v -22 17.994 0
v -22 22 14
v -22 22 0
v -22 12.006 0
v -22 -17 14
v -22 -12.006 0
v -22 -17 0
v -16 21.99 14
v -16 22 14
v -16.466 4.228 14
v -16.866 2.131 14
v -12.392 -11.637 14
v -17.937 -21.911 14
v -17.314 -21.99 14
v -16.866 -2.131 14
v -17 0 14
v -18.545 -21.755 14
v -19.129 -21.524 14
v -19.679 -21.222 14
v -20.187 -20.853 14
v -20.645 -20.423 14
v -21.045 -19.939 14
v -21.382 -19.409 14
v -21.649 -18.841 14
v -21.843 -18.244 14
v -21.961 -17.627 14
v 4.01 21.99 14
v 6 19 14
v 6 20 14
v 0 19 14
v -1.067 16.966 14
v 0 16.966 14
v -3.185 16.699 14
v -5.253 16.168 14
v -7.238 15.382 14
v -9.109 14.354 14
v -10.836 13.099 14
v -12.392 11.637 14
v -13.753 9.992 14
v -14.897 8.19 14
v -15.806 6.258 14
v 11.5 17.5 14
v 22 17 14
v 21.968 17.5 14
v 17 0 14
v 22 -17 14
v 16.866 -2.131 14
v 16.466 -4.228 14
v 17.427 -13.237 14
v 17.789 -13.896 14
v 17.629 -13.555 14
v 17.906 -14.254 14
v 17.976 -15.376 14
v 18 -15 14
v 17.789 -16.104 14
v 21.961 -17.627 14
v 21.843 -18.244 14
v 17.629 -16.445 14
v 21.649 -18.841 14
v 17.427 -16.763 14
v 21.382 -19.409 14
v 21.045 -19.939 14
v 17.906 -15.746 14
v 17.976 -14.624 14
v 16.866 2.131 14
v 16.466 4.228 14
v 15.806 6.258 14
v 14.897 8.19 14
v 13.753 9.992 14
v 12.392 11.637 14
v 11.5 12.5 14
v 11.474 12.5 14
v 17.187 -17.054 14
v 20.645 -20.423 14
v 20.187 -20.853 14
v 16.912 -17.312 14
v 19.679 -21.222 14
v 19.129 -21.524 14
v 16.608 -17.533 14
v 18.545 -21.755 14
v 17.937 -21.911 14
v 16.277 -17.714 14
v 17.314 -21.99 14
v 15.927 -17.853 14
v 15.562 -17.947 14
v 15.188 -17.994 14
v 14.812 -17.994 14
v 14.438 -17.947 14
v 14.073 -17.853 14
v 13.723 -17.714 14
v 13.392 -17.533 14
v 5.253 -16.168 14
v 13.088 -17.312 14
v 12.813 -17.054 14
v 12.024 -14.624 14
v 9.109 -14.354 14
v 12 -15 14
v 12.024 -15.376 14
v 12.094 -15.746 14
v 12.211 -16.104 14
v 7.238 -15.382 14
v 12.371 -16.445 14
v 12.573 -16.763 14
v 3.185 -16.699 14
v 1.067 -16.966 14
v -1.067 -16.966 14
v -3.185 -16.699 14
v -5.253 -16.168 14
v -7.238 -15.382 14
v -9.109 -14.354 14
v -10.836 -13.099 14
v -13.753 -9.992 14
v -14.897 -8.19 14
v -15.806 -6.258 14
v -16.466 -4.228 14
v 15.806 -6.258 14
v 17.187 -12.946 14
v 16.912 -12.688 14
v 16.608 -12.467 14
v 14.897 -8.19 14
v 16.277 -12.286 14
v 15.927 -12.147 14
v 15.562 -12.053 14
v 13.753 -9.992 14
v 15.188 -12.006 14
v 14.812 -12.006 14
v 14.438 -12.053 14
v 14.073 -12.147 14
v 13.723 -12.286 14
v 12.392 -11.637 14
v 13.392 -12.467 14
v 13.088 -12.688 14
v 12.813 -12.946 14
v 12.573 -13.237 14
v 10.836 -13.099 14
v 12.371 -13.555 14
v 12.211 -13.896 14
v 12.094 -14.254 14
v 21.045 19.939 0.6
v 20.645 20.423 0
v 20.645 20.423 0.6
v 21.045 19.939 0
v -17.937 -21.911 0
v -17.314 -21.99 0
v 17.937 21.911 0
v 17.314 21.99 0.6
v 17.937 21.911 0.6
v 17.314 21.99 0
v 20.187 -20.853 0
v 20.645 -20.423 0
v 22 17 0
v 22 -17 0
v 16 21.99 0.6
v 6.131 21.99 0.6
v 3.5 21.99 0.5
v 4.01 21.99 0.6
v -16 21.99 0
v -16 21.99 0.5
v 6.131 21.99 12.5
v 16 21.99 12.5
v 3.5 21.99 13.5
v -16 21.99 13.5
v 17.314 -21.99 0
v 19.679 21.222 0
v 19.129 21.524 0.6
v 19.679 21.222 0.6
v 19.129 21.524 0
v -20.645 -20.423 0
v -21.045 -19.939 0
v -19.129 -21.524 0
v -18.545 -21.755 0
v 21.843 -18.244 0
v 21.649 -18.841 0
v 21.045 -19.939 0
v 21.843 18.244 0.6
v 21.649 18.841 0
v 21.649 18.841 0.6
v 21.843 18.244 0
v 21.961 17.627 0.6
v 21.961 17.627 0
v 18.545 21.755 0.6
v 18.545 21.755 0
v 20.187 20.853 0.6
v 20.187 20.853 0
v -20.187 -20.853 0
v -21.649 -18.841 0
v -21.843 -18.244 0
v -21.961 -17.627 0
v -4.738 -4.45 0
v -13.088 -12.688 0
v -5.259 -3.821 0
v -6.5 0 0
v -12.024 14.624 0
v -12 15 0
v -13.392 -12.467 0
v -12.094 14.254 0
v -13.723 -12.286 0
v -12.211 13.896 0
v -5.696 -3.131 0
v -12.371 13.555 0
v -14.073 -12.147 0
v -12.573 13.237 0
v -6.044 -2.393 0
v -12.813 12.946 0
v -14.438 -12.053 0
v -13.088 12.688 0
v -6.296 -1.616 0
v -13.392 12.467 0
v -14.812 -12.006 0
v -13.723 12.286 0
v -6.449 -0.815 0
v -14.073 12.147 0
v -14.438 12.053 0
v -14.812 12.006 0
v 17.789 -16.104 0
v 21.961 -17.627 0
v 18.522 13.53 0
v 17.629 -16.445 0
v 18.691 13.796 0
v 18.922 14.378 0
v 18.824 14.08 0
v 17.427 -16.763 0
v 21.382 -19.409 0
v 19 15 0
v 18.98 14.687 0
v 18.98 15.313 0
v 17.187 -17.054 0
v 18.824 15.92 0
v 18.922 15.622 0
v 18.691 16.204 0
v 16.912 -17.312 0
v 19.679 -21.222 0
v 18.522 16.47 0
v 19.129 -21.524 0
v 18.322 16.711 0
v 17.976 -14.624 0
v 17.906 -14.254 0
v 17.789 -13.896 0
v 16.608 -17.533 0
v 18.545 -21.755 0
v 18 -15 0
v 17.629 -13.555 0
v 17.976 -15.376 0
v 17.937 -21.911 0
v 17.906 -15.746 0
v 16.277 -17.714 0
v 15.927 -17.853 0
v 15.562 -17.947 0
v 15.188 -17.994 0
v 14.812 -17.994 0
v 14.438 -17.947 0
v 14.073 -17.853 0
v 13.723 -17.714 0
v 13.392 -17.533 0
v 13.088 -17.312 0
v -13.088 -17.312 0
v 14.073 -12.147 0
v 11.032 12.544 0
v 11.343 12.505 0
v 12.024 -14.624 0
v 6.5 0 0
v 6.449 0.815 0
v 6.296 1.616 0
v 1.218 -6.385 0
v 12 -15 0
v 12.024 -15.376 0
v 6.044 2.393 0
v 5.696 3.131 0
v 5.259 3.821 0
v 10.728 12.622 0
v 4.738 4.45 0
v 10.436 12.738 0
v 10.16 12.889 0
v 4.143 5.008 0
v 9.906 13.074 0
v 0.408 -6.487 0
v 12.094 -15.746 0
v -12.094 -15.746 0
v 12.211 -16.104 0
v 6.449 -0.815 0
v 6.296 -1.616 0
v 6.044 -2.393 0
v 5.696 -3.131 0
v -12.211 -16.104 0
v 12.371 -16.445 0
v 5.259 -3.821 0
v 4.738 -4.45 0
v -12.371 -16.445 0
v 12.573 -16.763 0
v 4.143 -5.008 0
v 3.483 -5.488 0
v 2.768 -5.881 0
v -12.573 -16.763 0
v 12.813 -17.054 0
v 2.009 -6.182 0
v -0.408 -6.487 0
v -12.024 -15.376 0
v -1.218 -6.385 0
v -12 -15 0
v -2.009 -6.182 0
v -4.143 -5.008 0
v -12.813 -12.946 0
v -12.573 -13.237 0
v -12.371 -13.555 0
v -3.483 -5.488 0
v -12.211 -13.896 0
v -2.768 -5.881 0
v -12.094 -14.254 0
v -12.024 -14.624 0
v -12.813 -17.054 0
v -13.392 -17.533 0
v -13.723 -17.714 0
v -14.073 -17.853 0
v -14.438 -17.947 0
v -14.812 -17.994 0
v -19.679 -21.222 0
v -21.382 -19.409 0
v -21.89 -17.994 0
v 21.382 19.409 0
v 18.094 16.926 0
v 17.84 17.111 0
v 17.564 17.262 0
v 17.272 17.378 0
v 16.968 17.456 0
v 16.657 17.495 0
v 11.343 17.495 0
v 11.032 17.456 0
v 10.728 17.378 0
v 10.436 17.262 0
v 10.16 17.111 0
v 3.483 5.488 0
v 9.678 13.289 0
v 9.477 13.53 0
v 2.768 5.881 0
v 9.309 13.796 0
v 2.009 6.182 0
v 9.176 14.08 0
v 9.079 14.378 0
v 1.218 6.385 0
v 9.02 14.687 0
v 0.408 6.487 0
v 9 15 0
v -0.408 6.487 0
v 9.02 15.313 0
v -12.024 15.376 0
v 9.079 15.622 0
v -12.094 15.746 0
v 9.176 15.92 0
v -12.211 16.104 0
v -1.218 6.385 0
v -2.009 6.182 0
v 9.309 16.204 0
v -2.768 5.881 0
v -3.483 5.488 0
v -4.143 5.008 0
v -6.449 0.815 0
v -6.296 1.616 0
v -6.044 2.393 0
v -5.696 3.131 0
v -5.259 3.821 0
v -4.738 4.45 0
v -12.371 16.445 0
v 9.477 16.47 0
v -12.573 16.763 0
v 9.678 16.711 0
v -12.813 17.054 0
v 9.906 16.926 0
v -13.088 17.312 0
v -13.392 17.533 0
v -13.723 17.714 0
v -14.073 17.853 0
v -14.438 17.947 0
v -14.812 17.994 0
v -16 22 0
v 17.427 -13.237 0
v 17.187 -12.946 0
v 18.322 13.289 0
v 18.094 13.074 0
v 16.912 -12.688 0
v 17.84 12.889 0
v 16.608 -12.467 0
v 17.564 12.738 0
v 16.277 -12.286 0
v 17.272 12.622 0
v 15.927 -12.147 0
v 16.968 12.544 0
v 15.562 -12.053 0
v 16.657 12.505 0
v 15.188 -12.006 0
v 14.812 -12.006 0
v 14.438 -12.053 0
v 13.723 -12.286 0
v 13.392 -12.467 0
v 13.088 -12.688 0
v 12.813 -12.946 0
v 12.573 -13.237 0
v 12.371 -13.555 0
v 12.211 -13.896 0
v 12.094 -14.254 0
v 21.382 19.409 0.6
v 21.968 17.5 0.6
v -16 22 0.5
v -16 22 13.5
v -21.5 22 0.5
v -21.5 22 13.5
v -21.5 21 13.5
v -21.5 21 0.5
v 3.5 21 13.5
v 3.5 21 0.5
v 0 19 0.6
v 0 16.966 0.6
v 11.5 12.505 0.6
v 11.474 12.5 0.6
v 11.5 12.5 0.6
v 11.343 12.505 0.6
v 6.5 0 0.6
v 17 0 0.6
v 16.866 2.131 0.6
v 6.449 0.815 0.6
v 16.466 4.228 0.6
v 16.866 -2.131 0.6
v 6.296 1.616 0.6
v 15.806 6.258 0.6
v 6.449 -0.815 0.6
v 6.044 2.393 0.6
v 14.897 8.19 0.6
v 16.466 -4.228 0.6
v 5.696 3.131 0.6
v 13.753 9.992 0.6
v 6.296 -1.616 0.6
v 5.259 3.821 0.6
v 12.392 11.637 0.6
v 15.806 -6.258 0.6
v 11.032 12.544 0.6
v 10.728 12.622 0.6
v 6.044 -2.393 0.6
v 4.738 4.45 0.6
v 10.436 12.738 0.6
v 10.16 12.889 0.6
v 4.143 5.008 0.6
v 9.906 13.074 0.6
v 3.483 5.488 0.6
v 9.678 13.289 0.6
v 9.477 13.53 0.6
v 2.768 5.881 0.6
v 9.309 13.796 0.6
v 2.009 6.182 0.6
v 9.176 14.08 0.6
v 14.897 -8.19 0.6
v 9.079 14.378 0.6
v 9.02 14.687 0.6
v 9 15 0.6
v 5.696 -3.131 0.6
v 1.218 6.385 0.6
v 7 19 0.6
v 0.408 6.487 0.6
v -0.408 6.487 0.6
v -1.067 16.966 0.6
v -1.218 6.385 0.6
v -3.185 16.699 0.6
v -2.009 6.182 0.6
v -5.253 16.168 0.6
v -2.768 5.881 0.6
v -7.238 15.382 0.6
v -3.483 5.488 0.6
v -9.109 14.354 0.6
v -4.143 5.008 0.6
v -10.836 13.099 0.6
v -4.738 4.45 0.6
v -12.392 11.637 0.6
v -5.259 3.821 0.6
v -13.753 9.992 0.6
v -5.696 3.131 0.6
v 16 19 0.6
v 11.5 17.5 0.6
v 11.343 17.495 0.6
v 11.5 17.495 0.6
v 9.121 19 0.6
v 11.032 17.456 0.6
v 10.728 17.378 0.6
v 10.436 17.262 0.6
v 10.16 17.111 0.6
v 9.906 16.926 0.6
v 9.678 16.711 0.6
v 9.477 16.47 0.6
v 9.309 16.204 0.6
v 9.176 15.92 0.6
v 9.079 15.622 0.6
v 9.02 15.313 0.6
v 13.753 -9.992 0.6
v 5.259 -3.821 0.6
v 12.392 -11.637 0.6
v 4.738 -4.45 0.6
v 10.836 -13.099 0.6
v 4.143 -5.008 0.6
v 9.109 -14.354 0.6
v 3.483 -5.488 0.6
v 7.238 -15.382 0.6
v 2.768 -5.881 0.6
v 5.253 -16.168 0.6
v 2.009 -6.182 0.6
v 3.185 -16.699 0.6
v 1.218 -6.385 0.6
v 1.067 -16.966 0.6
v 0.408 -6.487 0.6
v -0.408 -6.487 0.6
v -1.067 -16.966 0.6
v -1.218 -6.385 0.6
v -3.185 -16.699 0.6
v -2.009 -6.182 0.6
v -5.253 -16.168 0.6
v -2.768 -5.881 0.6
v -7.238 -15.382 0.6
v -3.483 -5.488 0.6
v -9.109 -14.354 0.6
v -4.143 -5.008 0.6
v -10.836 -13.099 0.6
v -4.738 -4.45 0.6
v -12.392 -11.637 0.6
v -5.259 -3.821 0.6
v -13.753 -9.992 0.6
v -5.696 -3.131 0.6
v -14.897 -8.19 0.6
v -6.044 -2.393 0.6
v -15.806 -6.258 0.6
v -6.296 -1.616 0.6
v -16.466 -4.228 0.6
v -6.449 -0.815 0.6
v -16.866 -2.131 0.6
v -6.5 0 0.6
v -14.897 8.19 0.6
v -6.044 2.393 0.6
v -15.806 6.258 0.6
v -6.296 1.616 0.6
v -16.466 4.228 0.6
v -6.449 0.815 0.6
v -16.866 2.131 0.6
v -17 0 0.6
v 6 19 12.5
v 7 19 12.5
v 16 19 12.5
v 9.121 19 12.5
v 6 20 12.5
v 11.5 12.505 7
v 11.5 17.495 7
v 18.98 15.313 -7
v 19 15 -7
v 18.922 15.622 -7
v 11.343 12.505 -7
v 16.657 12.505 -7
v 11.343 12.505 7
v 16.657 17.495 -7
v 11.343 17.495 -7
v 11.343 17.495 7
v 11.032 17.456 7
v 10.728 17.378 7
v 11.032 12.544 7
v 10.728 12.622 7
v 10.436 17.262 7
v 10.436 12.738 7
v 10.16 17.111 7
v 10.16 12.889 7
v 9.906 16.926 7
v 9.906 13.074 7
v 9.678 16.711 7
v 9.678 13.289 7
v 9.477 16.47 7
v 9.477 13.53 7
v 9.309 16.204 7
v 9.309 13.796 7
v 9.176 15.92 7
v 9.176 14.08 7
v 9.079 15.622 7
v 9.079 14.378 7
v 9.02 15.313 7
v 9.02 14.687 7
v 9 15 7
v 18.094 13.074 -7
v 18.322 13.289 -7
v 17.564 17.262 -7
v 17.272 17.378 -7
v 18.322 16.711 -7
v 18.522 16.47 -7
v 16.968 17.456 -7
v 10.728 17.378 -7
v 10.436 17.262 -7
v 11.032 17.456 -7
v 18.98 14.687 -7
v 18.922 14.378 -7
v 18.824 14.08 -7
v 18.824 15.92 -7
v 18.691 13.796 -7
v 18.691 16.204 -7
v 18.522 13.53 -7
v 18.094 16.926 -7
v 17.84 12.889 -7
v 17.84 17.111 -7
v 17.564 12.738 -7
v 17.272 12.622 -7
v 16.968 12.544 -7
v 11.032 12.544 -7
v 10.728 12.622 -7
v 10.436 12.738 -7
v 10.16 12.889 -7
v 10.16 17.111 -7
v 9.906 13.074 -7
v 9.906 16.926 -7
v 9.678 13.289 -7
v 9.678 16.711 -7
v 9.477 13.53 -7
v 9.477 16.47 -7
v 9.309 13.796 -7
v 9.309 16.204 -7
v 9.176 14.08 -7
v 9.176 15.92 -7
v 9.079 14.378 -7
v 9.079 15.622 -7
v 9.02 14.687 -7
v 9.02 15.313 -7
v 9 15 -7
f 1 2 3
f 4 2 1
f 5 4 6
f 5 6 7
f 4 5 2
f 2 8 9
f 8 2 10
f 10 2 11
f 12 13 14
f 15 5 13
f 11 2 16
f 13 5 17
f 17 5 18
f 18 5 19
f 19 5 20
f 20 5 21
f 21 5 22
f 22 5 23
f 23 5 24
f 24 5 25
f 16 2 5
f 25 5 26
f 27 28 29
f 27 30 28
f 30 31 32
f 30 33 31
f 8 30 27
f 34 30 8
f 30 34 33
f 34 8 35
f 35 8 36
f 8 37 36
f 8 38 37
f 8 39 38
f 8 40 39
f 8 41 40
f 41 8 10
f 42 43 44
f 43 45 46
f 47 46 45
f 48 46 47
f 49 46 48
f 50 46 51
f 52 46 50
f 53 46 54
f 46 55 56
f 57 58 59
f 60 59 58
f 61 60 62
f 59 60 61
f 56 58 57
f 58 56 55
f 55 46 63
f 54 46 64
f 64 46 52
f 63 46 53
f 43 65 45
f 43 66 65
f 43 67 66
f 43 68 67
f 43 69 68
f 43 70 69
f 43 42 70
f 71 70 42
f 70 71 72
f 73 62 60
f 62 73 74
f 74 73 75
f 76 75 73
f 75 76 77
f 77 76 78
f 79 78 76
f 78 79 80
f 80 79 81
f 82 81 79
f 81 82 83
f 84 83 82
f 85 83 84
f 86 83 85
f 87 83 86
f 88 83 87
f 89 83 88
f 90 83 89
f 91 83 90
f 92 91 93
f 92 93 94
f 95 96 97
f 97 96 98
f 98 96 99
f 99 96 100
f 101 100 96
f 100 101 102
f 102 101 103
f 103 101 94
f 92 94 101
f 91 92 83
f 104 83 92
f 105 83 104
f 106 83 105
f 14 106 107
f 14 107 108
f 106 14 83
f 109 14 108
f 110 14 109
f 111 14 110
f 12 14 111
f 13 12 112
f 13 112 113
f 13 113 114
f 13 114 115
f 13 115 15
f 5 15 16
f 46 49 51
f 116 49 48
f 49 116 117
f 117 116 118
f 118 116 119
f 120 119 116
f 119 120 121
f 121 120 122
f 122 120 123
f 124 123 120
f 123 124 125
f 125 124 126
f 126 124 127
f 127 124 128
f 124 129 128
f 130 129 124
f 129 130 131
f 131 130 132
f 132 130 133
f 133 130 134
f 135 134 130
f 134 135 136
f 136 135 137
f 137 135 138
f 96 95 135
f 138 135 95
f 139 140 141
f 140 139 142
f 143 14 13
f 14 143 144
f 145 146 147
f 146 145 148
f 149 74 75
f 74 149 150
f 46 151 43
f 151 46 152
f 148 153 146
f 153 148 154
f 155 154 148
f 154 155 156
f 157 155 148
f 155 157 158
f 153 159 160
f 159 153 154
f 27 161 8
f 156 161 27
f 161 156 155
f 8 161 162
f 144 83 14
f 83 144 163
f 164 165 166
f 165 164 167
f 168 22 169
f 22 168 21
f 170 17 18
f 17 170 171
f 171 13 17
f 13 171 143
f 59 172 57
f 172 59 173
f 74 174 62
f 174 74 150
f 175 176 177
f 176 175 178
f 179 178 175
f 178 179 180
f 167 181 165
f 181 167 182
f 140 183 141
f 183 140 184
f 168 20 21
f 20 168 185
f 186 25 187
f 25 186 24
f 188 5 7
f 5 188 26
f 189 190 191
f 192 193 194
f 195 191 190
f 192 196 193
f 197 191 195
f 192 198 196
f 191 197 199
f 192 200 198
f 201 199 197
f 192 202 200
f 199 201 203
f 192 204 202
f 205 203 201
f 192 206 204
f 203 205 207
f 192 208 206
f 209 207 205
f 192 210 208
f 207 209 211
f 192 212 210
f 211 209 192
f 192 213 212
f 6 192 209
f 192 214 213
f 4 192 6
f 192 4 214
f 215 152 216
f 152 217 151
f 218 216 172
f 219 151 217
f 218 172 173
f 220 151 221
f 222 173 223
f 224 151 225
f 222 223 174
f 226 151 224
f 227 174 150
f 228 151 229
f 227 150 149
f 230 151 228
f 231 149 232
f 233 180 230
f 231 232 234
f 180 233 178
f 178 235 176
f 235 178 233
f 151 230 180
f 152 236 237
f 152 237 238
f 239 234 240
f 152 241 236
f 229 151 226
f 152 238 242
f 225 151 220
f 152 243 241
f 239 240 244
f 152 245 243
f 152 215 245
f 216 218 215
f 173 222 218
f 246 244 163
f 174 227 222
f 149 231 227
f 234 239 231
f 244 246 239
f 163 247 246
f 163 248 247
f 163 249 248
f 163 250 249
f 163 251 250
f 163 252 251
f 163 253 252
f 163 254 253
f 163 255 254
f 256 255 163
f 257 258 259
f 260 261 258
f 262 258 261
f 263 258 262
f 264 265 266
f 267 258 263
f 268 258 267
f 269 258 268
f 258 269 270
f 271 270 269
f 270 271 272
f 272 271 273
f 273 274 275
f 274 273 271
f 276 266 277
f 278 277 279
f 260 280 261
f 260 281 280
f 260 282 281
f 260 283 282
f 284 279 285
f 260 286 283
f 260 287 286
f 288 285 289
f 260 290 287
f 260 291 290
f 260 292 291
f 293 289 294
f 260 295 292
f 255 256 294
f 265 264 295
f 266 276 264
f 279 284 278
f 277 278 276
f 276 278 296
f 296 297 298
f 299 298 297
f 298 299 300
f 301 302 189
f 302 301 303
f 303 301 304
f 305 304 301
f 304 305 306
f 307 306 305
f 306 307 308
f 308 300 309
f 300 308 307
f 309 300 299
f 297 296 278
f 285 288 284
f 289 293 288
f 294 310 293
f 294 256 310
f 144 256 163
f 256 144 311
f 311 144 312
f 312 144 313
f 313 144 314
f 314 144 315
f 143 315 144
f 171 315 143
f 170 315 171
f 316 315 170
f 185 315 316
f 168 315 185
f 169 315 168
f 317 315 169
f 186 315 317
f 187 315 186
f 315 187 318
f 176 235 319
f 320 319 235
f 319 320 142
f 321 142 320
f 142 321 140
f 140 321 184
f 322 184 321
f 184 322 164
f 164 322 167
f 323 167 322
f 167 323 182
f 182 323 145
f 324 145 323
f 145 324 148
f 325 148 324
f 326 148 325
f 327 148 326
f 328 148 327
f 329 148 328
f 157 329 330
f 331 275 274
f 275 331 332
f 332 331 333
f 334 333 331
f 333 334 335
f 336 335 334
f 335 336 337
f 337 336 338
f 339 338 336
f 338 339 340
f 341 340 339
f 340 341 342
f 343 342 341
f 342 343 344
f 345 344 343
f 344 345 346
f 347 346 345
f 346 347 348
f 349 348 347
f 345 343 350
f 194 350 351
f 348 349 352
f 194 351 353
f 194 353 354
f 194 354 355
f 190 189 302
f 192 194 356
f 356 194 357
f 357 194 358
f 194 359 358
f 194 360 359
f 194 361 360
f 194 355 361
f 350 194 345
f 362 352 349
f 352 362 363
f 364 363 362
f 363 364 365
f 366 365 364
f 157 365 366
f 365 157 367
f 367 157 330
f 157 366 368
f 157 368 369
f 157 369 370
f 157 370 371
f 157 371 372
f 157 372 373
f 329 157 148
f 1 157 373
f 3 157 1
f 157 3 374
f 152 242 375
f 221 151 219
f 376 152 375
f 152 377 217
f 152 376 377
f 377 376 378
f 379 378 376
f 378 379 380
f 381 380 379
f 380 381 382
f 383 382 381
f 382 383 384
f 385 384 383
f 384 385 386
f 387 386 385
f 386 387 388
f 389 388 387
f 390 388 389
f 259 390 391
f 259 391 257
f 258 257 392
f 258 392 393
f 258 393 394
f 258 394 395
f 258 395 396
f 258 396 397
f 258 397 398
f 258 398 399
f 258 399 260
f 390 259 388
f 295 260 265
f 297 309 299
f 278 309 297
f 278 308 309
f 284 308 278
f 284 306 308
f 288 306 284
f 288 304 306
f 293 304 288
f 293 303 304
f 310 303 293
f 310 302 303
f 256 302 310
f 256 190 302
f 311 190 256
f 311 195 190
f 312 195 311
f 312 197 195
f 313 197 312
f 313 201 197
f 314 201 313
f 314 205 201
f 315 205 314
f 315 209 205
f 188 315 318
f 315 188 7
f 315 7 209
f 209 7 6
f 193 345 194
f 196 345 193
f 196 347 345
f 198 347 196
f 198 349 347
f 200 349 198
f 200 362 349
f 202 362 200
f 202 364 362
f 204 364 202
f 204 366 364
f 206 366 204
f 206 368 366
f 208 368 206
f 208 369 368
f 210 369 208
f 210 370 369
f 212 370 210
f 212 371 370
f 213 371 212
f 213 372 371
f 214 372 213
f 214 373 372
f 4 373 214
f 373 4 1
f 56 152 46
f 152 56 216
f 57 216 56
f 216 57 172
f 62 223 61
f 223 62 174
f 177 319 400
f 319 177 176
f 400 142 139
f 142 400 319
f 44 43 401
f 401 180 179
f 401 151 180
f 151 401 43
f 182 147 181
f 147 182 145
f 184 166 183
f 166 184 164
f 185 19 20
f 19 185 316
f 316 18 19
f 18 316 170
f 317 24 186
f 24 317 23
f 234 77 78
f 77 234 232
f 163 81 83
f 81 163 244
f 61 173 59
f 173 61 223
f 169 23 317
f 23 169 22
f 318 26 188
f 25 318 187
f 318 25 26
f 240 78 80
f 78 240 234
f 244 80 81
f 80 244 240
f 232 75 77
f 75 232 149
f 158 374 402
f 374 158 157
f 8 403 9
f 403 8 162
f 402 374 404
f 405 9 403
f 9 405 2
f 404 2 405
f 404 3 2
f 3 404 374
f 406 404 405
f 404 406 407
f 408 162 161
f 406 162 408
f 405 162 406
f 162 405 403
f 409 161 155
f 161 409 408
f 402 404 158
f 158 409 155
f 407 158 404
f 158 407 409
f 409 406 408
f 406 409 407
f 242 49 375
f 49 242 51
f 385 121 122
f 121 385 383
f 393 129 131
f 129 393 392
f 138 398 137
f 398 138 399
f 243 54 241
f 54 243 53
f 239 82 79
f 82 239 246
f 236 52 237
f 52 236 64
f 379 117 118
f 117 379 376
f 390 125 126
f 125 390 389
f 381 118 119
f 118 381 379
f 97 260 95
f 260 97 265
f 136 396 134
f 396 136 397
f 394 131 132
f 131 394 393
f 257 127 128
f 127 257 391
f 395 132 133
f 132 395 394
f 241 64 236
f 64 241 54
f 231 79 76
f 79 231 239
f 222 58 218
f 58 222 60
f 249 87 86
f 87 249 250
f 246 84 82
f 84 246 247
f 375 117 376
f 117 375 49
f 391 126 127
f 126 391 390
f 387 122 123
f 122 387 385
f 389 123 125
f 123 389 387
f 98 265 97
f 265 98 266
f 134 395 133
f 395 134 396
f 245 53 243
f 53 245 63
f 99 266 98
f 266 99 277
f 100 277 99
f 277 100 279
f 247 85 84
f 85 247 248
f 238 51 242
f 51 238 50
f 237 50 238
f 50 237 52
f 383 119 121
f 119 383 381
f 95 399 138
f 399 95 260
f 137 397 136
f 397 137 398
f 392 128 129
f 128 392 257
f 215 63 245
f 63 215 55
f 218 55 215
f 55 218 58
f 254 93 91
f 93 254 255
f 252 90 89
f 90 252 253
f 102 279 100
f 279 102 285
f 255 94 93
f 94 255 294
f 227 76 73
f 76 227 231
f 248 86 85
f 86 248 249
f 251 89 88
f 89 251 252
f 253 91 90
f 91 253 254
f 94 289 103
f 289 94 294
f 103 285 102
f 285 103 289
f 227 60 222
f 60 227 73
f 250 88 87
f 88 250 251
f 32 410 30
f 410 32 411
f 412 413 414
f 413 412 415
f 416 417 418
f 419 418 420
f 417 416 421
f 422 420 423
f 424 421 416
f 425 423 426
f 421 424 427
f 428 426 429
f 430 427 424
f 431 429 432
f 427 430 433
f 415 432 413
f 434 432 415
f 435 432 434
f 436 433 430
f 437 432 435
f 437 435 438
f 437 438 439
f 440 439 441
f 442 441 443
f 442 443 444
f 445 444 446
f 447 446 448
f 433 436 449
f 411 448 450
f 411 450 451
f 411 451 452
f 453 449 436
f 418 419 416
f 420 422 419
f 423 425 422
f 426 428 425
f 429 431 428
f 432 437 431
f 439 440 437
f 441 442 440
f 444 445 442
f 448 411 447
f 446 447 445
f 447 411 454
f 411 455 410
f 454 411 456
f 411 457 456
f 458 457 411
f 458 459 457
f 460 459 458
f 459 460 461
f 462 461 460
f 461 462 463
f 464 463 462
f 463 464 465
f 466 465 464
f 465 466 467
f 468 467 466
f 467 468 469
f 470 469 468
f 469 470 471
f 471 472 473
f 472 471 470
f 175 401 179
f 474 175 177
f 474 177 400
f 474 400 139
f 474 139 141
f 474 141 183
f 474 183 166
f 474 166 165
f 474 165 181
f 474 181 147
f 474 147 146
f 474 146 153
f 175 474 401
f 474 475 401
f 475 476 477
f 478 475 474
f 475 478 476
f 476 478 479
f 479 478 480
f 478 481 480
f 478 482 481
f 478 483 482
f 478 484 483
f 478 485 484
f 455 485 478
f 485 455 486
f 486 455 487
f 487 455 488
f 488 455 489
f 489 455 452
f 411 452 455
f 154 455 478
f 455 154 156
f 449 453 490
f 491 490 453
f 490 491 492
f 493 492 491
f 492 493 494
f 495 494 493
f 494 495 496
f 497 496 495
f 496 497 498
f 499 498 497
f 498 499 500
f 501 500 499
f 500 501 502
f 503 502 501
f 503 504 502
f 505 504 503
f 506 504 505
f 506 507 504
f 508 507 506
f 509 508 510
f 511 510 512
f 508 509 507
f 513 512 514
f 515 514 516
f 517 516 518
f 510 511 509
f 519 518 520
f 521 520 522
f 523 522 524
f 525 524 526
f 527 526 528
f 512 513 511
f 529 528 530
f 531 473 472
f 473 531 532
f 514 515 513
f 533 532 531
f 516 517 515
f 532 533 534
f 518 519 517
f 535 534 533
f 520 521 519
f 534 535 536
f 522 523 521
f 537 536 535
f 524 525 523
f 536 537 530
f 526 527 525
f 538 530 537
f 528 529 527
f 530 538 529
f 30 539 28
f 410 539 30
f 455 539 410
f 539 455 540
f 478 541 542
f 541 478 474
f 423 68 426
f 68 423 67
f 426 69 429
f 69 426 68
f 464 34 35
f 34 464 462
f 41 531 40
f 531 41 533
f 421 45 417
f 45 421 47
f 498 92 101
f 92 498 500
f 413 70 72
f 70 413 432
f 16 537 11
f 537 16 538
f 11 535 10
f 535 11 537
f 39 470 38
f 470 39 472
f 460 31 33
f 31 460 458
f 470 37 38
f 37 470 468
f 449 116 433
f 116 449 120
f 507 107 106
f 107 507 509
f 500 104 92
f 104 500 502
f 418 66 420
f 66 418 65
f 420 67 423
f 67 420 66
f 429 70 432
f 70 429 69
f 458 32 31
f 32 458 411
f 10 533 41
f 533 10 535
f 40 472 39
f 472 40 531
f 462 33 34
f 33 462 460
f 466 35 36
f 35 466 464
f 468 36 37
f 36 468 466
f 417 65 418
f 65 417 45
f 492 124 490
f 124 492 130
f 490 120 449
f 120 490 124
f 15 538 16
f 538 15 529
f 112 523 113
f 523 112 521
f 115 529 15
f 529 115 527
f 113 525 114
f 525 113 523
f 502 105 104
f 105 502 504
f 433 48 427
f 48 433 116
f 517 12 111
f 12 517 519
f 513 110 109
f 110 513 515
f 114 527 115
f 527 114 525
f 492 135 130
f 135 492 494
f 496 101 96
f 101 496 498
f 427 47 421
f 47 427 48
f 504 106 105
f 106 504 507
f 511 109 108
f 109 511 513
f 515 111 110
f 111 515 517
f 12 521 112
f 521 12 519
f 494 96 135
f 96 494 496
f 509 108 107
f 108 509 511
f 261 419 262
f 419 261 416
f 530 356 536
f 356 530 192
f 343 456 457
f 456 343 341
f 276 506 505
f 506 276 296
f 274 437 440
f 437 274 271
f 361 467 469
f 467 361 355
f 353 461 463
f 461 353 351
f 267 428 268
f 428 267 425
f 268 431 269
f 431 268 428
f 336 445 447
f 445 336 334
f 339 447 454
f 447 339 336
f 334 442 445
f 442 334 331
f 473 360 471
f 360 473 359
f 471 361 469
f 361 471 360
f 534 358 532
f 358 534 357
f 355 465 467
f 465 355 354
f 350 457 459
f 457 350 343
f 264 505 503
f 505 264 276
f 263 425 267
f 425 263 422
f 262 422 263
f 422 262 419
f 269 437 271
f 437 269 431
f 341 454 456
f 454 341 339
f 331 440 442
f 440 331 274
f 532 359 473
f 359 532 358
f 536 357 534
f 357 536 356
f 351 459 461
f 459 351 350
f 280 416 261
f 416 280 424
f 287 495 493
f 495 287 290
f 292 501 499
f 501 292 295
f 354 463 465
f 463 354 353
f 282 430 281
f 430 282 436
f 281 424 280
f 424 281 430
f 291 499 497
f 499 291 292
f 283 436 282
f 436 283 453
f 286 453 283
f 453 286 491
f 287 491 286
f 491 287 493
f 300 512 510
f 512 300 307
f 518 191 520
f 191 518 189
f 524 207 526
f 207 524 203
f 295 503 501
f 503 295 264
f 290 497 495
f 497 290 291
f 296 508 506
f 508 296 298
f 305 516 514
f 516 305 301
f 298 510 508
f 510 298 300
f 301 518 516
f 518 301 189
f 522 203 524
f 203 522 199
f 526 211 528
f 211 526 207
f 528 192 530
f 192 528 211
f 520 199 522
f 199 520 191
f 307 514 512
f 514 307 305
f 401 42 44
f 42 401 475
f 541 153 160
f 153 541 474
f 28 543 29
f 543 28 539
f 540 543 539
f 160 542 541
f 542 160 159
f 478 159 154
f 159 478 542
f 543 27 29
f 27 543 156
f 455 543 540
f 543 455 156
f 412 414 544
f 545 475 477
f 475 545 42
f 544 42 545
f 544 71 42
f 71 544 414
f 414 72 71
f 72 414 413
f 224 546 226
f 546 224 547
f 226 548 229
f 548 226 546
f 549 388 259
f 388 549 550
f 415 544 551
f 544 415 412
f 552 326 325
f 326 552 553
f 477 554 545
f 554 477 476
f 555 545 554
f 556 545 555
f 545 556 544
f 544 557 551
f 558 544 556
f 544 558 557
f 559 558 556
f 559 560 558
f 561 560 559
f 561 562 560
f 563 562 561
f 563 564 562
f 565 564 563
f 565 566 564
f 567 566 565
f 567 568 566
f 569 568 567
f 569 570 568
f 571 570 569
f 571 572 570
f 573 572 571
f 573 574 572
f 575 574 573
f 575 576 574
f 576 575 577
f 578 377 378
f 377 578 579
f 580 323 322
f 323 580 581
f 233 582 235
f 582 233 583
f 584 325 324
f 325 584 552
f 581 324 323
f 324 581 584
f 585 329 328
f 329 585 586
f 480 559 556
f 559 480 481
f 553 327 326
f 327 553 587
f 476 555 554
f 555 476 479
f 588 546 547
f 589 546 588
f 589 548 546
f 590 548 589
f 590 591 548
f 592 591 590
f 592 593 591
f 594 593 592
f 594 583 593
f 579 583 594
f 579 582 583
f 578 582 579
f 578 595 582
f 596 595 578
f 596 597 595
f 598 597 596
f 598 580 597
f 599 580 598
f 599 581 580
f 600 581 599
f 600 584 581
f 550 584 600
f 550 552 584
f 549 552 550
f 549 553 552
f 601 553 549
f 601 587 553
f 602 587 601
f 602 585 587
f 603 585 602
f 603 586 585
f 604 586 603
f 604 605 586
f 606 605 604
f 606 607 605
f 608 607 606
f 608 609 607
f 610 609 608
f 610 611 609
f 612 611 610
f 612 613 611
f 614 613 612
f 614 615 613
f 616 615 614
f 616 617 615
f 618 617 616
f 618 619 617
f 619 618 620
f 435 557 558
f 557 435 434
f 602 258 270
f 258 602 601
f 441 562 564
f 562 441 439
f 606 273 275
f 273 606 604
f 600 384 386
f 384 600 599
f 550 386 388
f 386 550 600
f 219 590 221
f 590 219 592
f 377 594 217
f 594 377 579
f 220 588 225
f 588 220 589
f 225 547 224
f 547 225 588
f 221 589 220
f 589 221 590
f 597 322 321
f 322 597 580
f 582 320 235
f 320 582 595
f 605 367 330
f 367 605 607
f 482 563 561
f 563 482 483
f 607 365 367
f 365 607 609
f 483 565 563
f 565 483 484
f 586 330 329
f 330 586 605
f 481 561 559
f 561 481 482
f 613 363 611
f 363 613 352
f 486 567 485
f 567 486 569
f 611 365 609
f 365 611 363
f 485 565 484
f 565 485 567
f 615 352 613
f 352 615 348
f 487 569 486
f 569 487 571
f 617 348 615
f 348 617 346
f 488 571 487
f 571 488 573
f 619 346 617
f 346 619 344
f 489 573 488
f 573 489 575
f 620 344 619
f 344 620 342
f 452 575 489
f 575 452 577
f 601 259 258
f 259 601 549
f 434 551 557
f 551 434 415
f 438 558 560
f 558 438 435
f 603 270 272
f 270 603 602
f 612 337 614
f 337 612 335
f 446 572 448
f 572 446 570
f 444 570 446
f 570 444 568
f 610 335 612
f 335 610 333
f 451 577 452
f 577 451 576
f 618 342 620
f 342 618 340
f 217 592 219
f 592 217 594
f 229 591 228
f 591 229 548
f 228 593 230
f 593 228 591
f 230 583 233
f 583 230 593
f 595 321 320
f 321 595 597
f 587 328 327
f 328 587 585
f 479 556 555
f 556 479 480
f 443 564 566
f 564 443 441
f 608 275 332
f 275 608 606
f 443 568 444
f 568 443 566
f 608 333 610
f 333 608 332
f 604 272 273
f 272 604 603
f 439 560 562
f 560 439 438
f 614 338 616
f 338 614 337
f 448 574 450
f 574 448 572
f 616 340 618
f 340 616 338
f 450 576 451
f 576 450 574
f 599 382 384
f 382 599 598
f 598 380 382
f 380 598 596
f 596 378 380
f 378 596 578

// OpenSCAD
$fn = 50;


union() {
	difference() {
		union() {
			hull() {
				translate(v = [-17.0000000000, 17.0000000000, 0]) {
					cylinder(h = 14, r = 5);
				}
				translate(v = [17.0000000000, 17.0000000000, 0]) {
					cylinder(h = 14, r = 5);
				}
				translate(v = [-17.0000000000, -17.0000000000, 0]) {
					cylinder(h = 14, r = 5);
				}
				translate(v = [17.0000000000, -17.0000000000, 0]) {
					cylinder(h = 14, r = 5);
				}
			}
			translate(v = [-22.0000000000, 16.0000000000, 0]) {
				cube(size = [6, 6, 14]);
			}
		}
		union() {
			translate(v = [-22.5000000000, -15.0000000000, -250.0000000000]) {
				rotate(a = [0, 0, 0]) {
					difference() {
						union() {
							hull() {
								translate(v = [7.5000000000, 0, 0]) {
									cylinder(h = 250, r = 3.0000000000, r1 = 3.0000000000, r2 = 3.0000000000);
								}
								translate(v = [-7.5000000000, 0, 0]) {
									cylinder(h = 250, r = 3.0000000000, r1 = 3.0000000000, r2 = 3.0000000000);
								}
							}
						}
						union();
					}
				}
			}
			translate(v = [-22.5000000000, 15.0000000000, -250.0000000000]) {
				rotate(a = [0, 0, 0]) {
					difference() {
						union() {
							hull() {
								translate(v = [7.5000000000, 0, 0]) {
									cylinder(h = 250, r = 3.0000000000, r1 = 3.0000000000, r2 = 3.0000000000);
								}
								translate(v = [-7.5000000000, 0, 0]) {
									cylinder(h = 250, r = 3.0000000000, r1 = 3.0000000000, r2 = 3.0000000000);
								}
							}
						}
						union();
					}
				}
			}
			translate(v = [-21.5000000000, 21.0000000000, 0.5000000000]) {
				cube(size = [25, 1, 13.0000000000]);
			}
			translate(v = [15.0000000000, -15.0000000000, 0]) {
				cylinder(h = 100, r = 3.0000000000);
			}
			translate(v = [0.0000000000, 11.0000000000, 0.6000000000]) {
				cube(size = [11, 8, 16.4000000000]);
			}
			translate(v = [0, 0, 0.6000000000]) {
				cylinder(h = 16.4000000000, r = 17.0000000000);
			}
			translate(v = [0, 0, -7.0000000000]) {
				cylinder(h = 14, r = 6.5000000000);
			}
			translate(v = [0.0000000000, 17.5000000000, 0.6000000000]) {
				cube(size = [22.0000000000, 1.5000000000, 16.4000000000]);
			}
			translate(v = [16.0000000000, 17.5000000000, 0.6000000000]) {
				cube(size = [6, 4.5000000000, 16.4000000000]);
			}
			translate(v = [6.0000000000, 17.5000000000, 12.5000000000]) {
				cube(size = [16, 4.5000000000, 1.5000000000]);
			}
			translate(v = [3.2500000000, 22.7500000000, 0.6000000000]) {
				rotate(a = [0, 0, -45]) {
					cube(size = [7.5000000000, 1.5000000000, 16.4000000000]);
				}
			}
			translate(v = [2.5000000000, 12.5000000000, 0.6000000000]) {
				cube(size = [9.0000000000, 5, 13.4000000000]);
			}
		}
	}
	union() {
		translate(v = [14, 15.0000000000, -7.0000000000]) {
			rotate(a = [0, 0, 0]) {
				difference() {
					union() {
						#hull() {
							#translate(v = [2.5000000000, 0, 0]) {
								cylinder(h = 14, r = 2.5000000000, r1 = 2.5000000000, r2 = 2.5000000000);
							}
							#translate(v = [-2.5000000000, 0, 0]) {
								cylinder(h = 14, r = 2.5000000000, r1 = 2.5000000000, r2 = 2.5000000000);
							}
						}
					}
					union();
				}
			}
		}
	}
}
